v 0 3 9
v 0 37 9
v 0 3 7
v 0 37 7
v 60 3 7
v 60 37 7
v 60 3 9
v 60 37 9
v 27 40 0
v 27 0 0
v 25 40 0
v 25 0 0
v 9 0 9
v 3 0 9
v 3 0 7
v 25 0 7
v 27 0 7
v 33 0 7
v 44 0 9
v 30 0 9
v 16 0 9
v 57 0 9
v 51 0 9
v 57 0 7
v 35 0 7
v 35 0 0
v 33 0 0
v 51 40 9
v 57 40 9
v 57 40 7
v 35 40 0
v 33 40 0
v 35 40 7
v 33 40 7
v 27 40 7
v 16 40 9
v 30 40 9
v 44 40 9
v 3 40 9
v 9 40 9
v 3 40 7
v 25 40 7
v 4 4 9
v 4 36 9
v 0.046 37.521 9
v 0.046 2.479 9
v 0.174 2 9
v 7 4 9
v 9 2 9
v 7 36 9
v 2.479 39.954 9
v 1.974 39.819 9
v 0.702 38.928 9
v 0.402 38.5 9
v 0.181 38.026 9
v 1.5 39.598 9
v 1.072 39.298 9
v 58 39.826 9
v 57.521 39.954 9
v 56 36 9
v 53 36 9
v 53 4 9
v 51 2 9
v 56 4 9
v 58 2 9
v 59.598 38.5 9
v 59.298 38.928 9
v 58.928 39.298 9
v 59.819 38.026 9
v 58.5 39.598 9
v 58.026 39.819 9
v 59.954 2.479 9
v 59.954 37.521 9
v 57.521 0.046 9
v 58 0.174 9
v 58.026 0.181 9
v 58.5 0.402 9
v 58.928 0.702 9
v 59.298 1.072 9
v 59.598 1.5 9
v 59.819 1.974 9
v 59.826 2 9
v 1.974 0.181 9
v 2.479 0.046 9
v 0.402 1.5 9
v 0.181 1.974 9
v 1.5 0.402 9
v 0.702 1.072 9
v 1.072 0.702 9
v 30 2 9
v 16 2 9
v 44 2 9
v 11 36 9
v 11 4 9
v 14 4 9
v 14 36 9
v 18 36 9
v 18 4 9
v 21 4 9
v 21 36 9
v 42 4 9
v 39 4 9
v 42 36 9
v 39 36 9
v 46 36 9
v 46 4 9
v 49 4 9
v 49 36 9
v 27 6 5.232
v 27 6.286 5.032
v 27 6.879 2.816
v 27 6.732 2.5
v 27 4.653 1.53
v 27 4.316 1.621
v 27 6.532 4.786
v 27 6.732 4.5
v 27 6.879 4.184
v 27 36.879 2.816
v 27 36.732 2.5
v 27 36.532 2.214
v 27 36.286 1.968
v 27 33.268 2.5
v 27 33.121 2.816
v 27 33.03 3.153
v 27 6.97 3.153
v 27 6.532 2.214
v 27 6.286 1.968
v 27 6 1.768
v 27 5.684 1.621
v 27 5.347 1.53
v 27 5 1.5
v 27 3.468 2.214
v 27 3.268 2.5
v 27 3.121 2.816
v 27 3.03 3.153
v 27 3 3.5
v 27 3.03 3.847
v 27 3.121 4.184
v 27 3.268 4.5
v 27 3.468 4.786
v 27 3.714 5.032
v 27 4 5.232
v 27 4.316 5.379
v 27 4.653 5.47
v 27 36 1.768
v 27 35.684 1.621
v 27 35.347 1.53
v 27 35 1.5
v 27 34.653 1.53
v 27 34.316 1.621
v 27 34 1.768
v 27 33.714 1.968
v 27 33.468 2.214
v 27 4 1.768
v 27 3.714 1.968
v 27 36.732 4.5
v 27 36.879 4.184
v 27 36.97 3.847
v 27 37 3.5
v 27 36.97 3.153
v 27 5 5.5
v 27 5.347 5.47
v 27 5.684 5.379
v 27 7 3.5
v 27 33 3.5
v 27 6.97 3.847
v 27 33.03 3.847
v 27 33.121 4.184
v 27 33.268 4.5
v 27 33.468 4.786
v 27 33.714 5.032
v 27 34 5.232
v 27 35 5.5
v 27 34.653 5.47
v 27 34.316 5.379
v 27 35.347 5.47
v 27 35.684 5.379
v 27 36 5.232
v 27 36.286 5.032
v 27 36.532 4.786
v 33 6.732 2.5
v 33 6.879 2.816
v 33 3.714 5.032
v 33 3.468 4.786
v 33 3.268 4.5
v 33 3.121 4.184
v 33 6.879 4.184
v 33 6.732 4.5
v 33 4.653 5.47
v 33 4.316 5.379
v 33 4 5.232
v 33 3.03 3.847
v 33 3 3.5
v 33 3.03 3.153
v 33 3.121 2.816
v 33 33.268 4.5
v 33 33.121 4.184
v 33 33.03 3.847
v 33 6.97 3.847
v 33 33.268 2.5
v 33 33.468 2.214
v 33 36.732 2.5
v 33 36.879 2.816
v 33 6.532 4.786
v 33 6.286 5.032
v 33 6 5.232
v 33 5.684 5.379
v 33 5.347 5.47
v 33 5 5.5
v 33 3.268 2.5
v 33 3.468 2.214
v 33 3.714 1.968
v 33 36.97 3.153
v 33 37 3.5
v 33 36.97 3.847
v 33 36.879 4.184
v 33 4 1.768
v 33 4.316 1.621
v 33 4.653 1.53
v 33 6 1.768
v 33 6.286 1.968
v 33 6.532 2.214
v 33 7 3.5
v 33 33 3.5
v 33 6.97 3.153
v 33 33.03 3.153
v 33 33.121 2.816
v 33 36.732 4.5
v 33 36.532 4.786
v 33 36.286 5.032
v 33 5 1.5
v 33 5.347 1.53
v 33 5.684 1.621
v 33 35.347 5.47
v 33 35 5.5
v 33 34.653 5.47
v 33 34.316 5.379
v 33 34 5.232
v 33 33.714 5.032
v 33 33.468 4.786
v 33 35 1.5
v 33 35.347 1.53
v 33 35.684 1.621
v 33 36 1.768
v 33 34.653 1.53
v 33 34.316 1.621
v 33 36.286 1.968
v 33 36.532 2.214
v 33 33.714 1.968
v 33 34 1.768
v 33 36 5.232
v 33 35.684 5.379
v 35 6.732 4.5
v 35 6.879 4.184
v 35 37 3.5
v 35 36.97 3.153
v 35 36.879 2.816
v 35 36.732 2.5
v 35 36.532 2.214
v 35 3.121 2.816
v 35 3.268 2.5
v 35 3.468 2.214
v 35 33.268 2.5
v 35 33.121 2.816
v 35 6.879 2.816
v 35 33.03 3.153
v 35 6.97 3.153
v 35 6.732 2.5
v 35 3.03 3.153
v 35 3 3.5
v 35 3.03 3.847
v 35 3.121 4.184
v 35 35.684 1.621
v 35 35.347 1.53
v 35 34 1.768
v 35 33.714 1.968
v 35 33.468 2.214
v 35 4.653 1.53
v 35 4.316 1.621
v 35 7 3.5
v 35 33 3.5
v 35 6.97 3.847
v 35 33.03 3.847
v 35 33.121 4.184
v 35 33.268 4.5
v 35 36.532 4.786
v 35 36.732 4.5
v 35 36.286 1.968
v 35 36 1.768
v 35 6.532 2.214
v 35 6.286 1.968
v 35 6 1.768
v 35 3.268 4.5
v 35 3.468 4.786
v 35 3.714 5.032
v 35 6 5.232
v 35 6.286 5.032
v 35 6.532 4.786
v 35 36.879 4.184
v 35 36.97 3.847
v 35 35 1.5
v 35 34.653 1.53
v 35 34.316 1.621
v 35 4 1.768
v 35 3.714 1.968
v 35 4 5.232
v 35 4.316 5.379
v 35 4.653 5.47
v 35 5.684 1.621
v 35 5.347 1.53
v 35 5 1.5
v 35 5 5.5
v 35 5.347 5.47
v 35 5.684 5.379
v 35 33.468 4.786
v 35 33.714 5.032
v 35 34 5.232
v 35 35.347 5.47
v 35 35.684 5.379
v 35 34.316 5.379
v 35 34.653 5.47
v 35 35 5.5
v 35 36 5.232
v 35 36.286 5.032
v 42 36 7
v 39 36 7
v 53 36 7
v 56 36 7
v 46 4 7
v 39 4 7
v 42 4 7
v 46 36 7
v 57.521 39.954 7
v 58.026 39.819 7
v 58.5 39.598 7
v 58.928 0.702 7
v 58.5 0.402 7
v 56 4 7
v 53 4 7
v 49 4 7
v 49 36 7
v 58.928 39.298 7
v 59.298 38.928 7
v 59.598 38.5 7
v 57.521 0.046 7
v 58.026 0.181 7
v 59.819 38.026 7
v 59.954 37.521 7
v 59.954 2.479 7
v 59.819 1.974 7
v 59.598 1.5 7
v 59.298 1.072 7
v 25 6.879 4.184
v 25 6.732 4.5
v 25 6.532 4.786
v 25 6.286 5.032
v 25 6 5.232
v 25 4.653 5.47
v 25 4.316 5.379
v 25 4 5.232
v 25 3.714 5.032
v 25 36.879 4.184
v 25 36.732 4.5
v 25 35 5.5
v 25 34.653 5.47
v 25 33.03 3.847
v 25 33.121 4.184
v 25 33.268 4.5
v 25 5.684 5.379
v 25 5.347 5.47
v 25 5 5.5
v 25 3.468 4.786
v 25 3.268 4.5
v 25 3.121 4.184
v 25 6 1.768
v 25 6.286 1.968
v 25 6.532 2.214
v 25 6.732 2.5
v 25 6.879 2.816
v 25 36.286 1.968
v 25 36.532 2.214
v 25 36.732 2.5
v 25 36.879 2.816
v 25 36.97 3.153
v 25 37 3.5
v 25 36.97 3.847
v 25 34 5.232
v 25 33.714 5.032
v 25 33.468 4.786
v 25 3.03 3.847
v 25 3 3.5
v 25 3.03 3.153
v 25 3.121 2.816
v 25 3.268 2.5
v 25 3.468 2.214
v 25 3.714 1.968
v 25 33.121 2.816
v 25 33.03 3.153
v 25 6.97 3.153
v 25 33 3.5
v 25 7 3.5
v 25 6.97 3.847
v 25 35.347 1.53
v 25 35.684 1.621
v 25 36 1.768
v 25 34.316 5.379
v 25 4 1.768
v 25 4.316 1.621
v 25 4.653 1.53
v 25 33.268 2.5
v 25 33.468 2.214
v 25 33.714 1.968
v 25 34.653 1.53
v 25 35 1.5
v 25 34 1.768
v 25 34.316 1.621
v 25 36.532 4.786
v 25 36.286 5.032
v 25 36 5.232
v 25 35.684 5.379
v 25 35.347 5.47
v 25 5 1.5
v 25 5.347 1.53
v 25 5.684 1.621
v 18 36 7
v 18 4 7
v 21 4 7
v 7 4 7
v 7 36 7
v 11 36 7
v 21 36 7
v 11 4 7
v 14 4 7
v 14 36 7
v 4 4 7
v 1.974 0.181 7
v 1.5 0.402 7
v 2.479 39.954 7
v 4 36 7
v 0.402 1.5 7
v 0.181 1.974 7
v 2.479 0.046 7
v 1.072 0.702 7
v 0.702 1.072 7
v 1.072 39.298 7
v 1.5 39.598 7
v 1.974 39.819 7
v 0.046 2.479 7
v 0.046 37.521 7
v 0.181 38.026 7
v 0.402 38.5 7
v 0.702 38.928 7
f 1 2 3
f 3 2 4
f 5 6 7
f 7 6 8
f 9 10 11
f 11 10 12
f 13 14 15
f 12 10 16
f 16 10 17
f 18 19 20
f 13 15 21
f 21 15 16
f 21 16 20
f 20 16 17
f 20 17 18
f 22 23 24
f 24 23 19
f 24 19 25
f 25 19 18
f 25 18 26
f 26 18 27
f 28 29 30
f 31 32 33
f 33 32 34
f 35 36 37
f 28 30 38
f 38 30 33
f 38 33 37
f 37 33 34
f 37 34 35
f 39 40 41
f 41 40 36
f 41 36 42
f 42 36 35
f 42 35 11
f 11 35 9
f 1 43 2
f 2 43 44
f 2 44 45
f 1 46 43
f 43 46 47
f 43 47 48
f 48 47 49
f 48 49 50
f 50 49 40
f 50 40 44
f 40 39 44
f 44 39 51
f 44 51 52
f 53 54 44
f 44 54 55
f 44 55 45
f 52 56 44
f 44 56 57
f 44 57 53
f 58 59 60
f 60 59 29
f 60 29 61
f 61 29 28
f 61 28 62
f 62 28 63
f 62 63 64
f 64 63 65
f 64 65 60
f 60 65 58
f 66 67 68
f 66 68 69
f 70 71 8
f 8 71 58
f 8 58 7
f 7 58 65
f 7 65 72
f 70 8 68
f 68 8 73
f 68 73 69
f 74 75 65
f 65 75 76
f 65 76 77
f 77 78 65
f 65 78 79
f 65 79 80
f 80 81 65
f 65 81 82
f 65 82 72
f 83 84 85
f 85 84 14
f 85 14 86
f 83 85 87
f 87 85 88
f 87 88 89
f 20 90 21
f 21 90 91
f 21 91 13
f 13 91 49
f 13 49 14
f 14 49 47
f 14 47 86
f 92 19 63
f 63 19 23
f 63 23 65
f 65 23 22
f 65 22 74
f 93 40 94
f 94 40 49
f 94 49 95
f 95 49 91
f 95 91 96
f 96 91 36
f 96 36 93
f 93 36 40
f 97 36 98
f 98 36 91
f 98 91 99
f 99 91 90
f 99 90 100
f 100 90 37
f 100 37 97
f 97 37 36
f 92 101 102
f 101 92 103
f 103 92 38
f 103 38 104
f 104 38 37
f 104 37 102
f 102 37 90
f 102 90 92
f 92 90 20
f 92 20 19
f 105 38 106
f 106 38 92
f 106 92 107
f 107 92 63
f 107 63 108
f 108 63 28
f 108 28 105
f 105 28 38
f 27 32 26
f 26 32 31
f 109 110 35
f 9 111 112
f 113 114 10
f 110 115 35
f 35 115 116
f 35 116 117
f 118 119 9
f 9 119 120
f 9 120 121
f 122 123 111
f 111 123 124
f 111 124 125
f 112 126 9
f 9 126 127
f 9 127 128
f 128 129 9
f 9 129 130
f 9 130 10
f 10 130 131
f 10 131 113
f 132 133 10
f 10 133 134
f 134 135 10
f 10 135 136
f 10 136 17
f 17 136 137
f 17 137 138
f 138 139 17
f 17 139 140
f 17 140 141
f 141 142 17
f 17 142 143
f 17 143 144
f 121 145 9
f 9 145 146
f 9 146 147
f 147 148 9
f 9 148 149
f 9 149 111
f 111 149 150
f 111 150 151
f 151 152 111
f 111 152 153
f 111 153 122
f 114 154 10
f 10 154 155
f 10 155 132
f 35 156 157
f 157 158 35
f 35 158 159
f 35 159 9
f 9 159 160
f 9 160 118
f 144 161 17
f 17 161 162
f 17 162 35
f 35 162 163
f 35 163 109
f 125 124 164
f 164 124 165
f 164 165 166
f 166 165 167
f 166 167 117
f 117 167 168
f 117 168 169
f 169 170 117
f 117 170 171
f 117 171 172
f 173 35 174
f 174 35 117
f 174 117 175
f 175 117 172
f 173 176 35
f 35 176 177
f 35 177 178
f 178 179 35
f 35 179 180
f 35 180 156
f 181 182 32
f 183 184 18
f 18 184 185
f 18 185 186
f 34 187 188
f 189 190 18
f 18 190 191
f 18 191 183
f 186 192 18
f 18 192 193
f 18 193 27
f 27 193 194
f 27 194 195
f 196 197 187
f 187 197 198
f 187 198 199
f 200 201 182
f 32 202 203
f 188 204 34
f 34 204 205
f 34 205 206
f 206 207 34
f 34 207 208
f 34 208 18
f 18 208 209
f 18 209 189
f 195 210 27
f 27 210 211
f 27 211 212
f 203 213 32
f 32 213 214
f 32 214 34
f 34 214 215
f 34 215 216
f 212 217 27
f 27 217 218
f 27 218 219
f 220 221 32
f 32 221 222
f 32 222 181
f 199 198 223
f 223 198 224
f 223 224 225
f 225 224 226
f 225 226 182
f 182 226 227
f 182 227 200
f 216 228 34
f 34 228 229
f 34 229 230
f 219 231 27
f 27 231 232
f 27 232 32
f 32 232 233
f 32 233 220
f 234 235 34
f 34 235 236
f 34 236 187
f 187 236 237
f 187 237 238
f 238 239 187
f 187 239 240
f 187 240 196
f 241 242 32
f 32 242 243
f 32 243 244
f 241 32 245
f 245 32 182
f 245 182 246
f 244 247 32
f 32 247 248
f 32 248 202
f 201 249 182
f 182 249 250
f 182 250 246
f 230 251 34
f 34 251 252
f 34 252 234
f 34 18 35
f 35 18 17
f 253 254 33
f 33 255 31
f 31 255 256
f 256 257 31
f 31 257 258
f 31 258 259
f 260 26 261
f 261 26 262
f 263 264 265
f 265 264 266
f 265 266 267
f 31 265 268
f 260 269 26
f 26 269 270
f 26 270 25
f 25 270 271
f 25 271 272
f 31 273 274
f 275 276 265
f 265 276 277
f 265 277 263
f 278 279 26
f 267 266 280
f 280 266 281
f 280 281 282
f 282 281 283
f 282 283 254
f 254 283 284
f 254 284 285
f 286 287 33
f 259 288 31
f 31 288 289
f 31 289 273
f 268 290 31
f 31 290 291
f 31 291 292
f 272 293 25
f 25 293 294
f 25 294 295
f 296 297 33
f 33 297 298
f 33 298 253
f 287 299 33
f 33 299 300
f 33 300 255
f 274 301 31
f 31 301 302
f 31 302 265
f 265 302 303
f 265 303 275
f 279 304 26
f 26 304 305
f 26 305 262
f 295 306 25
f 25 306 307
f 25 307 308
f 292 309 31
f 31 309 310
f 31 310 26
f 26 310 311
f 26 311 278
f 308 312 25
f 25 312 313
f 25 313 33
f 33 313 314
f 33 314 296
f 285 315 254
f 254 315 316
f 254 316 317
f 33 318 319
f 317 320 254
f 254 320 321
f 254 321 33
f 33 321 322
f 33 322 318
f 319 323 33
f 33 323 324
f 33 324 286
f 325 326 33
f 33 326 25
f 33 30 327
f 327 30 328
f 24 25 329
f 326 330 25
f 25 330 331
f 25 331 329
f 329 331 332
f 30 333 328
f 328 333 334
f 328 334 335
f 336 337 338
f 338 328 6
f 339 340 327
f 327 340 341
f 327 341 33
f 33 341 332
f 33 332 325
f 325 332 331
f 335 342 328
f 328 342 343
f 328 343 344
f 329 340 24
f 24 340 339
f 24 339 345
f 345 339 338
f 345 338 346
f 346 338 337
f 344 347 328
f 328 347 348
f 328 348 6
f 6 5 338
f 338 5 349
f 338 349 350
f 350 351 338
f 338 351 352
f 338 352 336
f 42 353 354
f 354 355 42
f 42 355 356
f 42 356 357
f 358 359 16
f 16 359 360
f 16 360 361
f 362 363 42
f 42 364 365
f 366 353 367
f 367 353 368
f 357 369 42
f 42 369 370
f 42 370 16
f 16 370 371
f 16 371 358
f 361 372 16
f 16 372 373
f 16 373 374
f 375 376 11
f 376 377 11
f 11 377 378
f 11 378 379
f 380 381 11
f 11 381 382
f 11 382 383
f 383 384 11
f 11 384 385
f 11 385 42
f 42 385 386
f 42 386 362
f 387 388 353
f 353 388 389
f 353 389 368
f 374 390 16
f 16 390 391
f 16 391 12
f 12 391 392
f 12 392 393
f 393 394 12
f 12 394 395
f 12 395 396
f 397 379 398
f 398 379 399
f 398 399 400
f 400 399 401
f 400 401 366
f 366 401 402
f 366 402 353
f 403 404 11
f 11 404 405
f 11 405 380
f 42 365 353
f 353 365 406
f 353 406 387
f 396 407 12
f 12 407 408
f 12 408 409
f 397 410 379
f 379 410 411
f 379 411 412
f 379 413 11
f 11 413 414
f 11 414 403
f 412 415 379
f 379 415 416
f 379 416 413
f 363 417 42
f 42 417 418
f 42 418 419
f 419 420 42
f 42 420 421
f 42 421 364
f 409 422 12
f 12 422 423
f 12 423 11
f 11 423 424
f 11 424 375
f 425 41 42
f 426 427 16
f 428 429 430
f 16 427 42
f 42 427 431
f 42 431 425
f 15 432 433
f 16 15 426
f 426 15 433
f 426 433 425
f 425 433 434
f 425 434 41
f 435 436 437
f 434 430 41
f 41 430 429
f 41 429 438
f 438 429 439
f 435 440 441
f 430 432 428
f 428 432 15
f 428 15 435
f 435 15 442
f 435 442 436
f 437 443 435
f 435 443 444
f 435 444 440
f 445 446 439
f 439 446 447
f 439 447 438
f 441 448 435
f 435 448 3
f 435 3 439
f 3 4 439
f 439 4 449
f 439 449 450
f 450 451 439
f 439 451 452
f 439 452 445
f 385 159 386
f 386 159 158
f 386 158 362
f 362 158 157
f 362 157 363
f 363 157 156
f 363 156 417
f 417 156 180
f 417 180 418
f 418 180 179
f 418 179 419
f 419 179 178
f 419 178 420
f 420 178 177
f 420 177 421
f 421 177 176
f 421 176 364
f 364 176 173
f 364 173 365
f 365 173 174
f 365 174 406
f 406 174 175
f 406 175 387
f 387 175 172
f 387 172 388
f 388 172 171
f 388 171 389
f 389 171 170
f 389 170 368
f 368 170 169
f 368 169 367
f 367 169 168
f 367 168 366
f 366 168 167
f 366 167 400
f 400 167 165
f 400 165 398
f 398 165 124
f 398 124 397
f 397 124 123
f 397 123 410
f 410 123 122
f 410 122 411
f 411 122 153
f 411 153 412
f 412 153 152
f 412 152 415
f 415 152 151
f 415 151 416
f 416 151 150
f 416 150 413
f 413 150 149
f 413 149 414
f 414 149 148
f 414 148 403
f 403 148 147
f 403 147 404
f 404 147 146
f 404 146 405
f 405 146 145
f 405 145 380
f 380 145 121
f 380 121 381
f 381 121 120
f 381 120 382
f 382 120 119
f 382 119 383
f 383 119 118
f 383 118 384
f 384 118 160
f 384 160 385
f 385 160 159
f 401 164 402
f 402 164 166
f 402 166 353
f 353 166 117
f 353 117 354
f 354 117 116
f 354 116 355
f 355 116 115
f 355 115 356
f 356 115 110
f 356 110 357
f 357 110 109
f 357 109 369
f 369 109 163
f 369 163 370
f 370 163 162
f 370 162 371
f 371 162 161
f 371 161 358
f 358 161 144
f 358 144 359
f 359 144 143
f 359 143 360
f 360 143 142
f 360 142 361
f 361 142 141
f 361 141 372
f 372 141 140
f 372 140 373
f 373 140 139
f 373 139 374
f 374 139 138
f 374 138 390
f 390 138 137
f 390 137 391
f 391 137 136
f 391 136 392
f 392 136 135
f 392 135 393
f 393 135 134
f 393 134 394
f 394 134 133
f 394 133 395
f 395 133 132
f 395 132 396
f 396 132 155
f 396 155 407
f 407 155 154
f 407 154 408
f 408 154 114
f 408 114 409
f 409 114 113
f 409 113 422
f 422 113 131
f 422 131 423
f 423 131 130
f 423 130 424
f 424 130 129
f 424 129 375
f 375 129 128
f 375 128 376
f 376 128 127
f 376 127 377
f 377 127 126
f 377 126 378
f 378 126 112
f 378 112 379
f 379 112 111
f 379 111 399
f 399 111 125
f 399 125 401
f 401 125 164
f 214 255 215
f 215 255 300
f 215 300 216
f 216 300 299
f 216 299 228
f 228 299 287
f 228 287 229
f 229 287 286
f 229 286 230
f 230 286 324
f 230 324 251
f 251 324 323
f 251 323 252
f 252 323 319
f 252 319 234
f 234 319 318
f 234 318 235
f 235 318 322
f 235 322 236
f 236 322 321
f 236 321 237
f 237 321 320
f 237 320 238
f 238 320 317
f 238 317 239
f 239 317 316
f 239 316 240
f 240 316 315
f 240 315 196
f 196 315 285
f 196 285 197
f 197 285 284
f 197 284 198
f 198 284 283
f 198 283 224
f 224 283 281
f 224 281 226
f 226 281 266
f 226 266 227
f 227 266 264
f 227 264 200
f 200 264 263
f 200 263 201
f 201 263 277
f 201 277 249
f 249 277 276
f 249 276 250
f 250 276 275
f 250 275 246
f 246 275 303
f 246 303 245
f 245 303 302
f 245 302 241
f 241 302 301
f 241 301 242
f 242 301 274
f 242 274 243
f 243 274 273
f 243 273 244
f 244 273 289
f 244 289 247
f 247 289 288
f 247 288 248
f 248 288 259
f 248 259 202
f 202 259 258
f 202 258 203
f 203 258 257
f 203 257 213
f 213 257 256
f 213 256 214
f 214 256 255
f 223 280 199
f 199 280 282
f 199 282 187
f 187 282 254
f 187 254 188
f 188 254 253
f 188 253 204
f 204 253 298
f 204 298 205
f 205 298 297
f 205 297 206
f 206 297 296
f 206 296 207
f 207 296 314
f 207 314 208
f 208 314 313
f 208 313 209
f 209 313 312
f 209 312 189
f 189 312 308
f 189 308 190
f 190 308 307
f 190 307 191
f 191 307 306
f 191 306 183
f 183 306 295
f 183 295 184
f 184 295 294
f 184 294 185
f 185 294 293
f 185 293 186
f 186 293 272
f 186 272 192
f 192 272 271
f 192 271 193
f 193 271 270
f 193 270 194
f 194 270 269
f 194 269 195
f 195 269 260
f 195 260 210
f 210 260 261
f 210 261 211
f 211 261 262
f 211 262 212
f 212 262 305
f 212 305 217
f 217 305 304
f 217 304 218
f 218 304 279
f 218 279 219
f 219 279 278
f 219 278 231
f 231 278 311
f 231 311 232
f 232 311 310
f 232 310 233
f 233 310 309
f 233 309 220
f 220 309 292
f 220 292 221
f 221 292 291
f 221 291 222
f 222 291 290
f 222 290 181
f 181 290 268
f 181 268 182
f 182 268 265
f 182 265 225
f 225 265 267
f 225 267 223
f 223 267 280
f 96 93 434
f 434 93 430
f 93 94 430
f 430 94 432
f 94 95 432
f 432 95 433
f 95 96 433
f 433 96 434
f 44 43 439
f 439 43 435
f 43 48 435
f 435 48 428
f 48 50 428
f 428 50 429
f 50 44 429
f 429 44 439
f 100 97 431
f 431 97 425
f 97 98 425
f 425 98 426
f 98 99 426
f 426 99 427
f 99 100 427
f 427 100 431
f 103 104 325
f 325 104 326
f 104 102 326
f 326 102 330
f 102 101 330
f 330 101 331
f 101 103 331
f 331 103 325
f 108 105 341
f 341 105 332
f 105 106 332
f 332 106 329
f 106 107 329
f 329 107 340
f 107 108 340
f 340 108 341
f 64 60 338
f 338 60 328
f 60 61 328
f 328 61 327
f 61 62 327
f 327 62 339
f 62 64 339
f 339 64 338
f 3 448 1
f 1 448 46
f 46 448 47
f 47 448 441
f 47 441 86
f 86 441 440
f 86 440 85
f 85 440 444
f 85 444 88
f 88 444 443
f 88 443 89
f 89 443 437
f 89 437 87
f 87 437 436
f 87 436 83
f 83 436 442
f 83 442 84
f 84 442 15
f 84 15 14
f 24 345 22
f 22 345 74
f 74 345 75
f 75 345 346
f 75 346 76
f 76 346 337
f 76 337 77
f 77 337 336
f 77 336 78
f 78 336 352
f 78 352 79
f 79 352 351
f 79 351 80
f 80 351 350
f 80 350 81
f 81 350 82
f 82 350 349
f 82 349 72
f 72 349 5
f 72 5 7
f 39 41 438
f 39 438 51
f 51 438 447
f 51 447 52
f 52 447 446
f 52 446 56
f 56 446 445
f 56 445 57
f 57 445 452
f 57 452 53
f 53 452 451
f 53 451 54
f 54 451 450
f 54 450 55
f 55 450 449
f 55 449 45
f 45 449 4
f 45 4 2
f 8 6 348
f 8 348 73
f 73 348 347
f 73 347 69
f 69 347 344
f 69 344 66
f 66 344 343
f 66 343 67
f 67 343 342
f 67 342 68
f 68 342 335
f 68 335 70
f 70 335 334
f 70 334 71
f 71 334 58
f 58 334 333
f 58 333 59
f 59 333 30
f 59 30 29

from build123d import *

# Parameters (mm, degrees)
ESQUISSE1_W             = 60
ESQUISSE1_H             = 40
BOSS_EXTRU_1_DEPTH      = 9
ESQUISSE2_W             = 25
ESQUISSE2_H             = 40
ESQUISSE2_W_2           = 6
ENL_V_MAT_EXTRU_1_DEPTH = 7
ESQUISSE3_R             = 2
ENL_V_MAT_EXTRU_2_DEPTH = 54.907327888
ESQUISSE4_W             = 3
ESQUISSE4_H             = 32
ENL_V_MAT_EXTRU_3_DEPTH = 73.449982747
CONG_1_R                = 3


with BuildPart() as part:
    # Esquisse1 → Boss.-Extru.1 (new body)
    with BuildSketch(Plane.XY):
        with Locations((30, 20)):
            Rectangle(ESQUISSE1_W, ESQUISSE1_H)
    extrude(amount=BOSS_EXTRU_1_DEPTH)

    # Esquisse2 → Enlèv. mat.-Extru.1 (cut)
    with BuildSketch(Plane(origin=(0, 0, 0), x_dir=(-1, 0, 0), z_dir=(0, 0, -1))):
        with Locations((-12.5, 20)):
            Rectangle(ESQUISSE2_W, ESQUISSE2_H)
        with Locations((-47.5, 20)):
            Rectangle(ESQUISSE2_W, ESQUISSE2_H)
        with Locations((-30, 20)):
            Rectangle(ESQUISSE2_W_2, ESQUISSE2_H)
    extrude(amount=-ENL_V_MAT_EXTRU_1_DEPTH, mode=Mode.SUBTRACT)

    # Esquisse3 → Enlèv. mat.-Extru.2 (cut, through all)
    with BuildSketch(Plane(origin=(35, 0, 0), x_dir=(0, 0, -1), z_dir=(1, 0, 0))):
        with Locations((-3.5, 5)):
            Circle(ESQUISSE3_R)
        with Locations((-3.5, 35)):
            Circle(ESQUISSE3_R)
    extrude(amount=-ENL_V_MAT_EXTRU_2_DEPTH, mode=Mode.SUBTRACT)

    # Esquisse4 → Enlèv. mat.-Extru.3 (cut, through all)
    with BuildSketch(Plane(origin=(0, 0, 7), x_dir=(-1, 0, 0), z_dir=(0, 0, -1))):
        with Locations((-47.5, 20)):
            Rectangle(ESQUISSE4_W, ESQUISSE4_H)
        with Locations((-54.5, 20)):
            Rectangle(ESQUISSE4_W, ESQUISSE4_H)
        with Locations((-40.5, 20)):
            Rectangle(ESQUISSE4_W, ESQUISSE4_H)
        with Locations((-12.5, 20)):
            Rectangle(ESQUISSE4_W, ESQUISSE4_H)
        with Locations((-5.5, 20)):
            Rectangle(ESQUISSE4_W, ESQUISSE4_H)
        with Locations((-19.5, 20)):
            Rectangle(ESQUISSE4_W, ESQUISSE4_H)
    extrude(amount=-ENL_V_MAT_EXTRU_3_DEPTH, mode=Mode.SUBTRACT)

    # Congé1
    cong_1_edges = [part.edges().sort_by_distance(p)[0] for p in [
        (0, 40, 8),
        (60, 40, 8),
        (60, 0, 8),
        (0, 0, 8),
    ]]
    fillet(cong_1_edges, radius=CONG_1_R)


solid = part.part
